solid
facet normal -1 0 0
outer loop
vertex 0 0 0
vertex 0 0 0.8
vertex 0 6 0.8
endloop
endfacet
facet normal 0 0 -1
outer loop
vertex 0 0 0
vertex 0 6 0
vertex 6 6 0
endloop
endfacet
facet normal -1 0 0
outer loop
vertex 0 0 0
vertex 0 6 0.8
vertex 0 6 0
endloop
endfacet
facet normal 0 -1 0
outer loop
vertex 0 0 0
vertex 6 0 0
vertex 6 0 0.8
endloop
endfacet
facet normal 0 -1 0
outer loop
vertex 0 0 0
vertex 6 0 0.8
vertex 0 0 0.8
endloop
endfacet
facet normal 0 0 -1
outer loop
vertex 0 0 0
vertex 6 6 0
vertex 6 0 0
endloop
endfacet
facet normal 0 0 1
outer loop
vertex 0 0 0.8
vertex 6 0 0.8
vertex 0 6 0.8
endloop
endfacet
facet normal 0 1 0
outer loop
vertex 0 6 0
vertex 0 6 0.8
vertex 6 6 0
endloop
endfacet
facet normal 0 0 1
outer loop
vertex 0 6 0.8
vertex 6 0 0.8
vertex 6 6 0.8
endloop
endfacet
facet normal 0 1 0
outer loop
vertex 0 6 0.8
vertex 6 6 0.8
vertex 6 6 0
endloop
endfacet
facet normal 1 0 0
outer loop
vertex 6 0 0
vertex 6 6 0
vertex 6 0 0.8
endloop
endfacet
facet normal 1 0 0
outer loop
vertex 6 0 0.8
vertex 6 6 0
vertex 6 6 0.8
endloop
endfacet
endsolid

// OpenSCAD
/* Warning, this is a very basic generator with a lot of approximation 
input data : [WFBGA, 7UX, 6x6x0.8mm, 64, , A, C04-00408A]
generated by com.zoubworld.electronics.cad.model3d.Basic
Date : Sun Feb 15 10:50:48 CET 2026
*/

//body
color("black")
translate([0,0,0])
cube([6.0,6.0,0.8], center=false);
